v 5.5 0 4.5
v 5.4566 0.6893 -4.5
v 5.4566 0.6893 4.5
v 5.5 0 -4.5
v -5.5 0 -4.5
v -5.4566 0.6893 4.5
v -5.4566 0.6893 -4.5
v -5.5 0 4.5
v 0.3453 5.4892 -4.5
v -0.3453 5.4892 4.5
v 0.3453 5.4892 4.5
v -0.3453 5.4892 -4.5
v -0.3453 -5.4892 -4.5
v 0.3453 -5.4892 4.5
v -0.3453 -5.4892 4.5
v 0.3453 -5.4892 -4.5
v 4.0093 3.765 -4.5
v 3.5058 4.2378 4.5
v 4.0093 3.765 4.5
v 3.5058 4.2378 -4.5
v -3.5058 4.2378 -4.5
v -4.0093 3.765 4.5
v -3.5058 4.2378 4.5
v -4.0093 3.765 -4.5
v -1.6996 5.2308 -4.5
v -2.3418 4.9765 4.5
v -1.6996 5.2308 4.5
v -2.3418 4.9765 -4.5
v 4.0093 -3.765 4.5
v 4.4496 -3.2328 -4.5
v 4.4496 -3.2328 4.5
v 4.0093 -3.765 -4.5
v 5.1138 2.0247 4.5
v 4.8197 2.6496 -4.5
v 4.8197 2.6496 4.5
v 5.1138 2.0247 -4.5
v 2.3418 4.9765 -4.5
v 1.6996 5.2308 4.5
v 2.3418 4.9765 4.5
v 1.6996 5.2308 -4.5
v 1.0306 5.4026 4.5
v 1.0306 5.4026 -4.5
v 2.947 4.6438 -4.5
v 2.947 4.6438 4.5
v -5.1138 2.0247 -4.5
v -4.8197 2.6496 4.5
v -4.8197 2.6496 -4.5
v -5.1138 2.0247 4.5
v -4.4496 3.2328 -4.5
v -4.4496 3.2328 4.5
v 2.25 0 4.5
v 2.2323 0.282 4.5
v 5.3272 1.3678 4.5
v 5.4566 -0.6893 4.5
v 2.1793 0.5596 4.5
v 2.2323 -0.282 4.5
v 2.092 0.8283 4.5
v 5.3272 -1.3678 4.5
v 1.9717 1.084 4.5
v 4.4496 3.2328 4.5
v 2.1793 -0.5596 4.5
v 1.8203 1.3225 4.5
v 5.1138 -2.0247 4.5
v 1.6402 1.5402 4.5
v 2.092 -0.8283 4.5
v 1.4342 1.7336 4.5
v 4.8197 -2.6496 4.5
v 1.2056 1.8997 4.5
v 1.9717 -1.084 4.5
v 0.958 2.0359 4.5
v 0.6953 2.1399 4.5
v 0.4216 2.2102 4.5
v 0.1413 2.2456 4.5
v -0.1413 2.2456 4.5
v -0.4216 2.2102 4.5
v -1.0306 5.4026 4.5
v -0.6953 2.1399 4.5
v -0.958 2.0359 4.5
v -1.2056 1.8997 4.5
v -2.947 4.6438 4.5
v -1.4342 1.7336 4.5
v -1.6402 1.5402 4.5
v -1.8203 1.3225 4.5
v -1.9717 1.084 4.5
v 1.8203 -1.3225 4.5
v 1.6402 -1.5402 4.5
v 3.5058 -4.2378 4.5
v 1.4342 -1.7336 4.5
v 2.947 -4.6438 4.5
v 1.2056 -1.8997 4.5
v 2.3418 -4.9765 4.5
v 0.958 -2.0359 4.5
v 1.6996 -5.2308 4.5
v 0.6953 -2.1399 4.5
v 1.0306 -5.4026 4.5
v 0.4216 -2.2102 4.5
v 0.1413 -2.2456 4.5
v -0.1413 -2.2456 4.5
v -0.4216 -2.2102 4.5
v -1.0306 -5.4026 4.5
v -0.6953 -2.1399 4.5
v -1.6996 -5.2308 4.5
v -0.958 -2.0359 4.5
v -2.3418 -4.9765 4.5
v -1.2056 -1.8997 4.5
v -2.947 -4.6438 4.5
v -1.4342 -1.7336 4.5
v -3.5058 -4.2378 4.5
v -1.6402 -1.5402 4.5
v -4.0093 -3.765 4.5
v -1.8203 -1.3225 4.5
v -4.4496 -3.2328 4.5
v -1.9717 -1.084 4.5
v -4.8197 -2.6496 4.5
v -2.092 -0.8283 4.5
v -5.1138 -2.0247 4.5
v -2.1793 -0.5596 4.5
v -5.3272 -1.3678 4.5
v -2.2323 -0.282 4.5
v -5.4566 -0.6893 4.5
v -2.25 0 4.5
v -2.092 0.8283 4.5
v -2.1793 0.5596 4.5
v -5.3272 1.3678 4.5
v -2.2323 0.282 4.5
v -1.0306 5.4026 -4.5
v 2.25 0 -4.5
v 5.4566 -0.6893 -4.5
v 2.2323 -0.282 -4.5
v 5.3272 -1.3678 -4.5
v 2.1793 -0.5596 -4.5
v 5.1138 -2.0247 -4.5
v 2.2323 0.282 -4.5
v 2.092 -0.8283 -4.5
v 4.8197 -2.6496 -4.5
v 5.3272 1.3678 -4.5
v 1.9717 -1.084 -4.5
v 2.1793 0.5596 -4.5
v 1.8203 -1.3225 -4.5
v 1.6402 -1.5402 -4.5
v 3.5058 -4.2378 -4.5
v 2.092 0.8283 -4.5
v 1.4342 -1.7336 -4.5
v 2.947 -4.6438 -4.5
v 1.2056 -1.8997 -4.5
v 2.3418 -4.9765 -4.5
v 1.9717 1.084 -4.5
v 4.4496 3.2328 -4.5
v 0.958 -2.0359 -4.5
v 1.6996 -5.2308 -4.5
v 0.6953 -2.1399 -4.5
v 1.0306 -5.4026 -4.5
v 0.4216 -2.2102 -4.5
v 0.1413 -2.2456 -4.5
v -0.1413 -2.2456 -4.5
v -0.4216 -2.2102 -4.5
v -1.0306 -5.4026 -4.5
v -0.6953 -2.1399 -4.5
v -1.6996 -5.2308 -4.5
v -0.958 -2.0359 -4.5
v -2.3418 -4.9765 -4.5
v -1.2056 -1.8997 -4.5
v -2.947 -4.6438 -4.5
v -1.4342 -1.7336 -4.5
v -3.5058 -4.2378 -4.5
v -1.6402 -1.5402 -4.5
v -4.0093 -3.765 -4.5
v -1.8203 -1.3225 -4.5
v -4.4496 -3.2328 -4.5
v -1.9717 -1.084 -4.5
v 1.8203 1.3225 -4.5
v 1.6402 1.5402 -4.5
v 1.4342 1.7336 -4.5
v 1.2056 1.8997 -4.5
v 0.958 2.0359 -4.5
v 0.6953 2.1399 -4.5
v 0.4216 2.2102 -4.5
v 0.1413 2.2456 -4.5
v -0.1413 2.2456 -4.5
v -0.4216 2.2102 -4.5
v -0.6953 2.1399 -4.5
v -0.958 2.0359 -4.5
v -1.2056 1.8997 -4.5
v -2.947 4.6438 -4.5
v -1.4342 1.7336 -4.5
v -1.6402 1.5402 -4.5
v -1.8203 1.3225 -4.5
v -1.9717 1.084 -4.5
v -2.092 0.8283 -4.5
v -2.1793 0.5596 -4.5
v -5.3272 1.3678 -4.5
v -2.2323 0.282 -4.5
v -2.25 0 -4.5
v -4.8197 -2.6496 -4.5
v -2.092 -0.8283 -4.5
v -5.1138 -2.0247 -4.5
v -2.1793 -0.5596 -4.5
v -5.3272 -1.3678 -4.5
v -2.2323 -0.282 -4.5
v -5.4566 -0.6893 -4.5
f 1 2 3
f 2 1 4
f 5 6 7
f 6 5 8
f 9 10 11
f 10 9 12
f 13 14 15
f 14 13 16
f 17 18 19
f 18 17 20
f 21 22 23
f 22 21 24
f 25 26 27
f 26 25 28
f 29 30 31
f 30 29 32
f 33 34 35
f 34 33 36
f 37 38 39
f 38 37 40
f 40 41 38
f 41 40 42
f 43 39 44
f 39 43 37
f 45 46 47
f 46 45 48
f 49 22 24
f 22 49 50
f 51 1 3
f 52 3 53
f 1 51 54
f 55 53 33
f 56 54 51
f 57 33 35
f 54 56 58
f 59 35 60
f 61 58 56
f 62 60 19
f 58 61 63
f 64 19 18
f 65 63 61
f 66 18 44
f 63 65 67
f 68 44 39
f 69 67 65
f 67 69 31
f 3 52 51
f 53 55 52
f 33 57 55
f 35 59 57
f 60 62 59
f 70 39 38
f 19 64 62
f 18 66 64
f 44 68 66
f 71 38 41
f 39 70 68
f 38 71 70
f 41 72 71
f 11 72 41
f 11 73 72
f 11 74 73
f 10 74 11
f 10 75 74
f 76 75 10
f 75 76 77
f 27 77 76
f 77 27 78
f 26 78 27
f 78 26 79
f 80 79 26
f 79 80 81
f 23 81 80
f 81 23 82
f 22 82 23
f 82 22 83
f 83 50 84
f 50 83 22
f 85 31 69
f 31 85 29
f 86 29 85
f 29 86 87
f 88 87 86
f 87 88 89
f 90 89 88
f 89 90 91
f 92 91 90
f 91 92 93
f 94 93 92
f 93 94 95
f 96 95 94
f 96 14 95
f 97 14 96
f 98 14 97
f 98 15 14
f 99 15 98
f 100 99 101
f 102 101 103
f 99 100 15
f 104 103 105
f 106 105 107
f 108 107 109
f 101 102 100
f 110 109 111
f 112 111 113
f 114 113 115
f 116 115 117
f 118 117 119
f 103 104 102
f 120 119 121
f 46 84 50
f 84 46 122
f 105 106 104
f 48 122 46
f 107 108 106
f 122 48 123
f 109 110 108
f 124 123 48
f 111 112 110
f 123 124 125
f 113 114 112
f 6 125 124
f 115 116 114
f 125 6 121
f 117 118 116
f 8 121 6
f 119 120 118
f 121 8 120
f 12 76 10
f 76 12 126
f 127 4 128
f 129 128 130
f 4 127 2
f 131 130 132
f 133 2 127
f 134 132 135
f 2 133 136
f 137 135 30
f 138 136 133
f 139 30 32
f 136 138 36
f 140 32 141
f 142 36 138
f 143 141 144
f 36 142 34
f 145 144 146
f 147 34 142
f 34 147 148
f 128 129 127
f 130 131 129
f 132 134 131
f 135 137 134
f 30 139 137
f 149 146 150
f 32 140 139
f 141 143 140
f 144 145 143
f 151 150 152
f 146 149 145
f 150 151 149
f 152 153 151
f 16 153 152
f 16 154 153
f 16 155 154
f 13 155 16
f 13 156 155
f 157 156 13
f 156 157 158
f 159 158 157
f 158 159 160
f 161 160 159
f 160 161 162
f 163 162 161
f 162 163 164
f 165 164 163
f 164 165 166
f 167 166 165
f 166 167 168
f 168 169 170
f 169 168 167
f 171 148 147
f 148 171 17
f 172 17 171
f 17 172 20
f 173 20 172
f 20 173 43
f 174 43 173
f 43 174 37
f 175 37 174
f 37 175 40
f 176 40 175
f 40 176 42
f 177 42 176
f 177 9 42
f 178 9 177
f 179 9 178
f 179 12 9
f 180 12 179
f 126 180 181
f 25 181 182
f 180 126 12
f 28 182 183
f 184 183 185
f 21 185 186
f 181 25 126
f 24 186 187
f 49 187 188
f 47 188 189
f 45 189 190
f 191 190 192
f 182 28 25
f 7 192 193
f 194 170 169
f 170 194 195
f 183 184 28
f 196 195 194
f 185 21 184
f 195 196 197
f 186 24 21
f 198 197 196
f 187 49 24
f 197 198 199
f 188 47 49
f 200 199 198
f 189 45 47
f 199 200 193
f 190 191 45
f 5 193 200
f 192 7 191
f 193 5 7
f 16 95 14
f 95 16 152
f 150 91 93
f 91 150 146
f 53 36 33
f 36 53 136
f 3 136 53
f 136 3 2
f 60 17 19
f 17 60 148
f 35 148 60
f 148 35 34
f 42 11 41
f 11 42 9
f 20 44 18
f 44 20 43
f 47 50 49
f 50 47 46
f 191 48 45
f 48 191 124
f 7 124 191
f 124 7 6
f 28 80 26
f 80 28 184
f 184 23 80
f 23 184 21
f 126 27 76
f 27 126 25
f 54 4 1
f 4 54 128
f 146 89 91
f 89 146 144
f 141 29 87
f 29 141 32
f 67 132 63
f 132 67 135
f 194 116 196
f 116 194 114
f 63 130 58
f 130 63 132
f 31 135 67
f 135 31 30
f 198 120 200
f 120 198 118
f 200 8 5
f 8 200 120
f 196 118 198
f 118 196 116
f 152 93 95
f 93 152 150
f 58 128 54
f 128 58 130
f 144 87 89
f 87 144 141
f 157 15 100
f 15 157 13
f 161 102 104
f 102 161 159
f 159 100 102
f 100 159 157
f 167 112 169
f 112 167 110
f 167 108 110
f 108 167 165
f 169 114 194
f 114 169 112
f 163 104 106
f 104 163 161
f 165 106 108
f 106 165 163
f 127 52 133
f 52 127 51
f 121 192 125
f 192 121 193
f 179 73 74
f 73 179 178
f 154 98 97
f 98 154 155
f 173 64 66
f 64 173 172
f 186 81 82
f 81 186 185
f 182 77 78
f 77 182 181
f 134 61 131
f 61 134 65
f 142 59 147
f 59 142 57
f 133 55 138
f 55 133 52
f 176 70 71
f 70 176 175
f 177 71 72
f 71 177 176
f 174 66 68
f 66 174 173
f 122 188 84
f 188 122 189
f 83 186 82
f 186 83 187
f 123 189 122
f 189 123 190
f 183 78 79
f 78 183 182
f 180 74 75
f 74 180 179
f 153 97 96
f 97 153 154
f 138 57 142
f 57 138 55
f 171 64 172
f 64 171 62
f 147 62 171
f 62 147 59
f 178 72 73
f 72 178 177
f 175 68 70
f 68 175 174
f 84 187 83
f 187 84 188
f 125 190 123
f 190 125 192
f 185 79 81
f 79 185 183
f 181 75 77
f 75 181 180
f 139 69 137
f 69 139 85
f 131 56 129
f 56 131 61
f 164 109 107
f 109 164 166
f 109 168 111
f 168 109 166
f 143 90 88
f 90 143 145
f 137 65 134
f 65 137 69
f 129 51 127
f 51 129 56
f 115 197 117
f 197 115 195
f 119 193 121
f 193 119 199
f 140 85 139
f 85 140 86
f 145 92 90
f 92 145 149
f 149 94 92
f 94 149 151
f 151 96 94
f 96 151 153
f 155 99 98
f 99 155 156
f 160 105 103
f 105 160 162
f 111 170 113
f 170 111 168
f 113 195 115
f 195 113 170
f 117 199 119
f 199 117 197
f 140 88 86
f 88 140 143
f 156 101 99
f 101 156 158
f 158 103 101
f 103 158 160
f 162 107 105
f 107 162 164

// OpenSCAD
$fn = 50;


difference() {
	union() {
		translate(v = [0, 0, -4.5000000000]) {
			cylinder(h = 9, r = 5.5000000000);
		}
	}
	union() {
		translate(v = [0, 0, -100.0000000000]) {
			cylinder(h = 200, r = 2.2500000000);
		}
	}
}
